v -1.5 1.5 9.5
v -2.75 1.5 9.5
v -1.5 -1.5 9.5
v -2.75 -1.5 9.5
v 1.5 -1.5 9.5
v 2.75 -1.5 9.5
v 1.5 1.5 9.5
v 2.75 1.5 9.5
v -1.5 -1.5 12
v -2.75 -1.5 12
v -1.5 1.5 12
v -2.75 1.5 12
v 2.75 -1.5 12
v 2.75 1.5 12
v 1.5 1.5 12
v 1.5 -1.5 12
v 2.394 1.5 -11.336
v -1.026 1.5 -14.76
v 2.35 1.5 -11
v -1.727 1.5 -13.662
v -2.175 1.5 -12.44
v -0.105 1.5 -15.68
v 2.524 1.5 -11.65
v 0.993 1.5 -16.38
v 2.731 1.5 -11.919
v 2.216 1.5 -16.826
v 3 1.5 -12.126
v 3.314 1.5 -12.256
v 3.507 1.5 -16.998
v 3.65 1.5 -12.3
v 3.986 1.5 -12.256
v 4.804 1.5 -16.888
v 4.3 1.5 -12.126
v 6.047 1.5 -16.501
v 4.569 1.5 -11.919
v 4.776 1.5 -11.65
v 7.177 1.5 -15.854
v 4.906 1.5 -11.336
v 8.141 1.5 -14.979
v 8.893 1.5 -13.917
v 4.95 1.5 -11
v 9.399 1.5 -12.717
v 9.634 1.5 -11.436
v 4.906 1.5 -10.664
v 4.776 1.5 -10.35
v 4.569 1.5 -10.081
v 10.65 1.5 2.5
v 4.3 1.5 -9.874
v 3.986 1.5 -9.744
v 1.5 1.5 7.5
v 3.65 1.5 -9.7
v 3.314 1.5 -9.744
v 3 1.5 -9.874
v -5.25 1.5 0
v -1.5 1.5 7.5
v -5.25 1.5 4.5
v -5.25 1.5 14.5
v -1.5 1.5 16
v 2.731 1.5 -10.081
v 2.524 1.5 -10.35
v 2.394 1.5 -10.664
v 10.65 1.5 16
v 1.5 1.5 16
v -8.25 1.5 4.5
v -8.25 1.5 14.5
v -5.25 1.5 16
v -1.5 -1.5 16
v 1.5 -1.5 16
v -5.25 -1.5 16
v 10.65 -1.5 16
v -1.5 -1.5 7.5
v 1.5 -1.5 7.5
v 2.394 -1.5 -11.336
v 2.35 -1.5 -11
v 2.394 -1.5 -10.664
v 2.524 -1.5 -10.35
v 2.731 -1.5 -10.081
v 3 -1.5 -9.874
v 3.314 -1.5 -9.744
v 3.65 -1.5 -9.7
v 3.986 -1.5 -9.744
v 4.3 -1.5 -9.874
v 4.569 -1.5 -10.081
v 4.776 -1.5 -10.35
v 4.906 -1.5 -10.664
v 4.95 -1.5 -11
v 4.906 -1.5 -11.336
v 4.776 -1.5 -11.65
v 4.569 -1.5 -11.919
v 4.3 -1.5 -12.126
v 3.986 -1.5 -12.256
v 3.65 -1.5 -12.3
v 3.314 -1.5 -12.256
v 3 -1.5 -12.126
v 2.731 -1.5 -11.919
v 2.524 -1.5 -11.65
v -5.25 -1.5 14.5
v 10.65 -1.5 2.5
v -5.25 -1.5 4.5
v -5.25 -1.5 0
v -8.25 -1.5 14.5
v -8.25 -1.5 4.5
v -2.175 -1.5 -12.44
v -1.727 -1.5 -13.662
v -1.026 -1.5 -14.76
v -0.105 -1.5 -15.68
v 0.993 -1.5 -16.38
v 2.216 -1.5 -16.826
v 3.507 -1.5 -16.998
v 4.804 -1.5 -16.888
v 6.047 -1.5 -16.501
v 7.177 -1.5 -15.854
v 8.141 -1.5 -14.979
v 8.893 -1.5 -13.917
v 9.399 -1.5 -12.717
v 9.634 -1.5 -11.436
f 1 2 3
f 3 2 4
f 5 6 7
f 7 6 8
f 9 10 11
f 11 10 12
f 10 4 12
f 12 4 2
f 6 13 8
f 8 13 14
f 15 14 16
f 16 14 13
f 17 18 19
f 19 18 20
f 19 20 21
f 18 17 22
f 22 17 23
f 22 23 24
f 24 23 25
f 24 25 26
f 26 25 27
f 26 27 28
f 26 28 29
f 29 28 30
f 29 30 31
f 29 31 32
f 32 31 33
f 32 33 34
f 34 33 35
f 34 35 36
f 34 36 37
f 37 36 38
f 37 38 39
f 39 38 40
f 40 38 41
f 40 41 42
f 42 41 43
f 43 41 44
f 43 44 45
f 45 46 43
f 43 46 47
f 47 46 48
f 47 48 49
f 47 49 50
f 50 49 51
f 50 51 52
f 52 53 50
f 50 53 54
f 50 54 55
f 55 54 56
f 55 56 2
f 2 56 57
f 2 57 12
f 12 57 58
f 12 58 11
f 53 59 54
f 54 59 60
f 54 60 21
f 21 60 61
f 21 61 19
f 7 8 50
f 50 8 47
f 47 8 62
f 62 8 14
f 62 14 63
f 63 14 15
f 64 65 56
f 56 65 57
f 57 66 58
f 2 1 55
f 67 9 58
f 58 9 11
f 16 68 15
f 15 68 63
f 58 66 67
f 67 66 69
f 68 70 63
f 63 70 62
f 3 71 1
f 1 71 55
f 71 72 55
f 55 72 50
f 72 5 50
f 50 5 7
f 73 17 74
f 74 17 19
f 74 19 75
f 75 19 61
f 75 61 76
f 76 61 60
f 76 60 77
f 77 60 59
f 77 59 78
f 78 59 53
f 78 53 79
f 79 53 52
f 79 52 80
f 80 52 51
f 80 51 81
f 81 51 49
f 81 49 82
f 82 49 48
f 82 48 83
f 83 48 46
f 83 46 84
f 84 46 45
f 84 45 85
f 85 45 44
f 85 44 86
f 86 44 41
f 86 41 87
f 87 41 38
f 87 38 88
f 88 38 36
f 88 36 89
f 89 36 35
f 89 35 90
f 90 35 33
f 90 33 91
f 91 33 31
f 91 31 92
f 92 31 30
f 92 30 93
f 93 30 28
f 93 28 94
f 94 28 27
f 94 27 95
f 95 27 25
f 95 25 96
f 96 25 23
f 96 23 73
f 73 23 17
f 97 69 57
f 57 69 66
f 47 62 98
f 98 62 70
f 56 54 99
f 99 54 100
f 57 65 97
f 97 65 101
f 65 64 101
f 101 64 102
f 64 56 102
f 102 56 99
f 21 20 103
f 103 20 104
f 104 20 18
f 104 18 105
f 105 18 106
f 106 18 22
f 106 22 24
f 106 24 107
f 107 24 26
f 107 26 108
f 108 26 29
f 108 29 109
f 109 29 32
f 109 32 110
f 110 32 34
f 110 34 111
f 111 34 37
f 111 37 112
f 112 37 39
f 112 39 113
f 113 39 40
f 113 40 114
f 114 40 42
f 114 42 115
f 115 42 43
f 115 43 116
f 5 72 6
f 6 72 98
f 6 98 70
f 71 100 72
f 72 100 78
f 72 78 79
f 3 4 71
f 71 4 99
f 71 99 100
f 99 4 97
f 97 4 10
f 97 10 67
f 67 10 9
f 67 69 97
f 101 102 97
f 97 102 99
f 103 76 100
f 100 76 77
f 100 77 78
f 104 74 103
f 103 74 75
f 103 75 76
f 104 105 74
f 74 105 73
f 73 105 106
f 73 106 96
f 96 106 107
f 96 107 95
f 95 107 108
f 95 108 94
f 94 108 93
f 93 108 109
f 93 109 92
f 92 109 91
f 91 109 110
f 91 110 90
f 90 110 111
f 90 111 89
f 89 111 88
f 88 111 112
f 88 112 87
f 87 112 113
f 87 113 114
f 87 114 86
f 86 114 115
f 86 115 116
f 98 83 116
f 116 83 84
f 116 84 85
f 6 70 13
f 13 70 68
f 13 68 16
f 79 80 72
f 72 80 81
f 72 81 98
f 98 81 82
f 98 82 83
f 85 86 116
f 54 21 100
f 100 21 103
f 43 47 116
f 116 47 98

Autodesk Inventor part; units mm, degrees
ref_plane "YZ Plane" through (0, 0, 0) normal (1, 0, 0) x (0, 1, 0)
ref_plane "XZ Plane" through (0, 0, 0) normal (0, 1, 0) x (-1, 0, 0)
ref_plane "XY Plane" through (0, 0, 0) normal (0, 0, 1) x (1, 0, 0)
sketch "草圖1" plane through (0, 0, 0) normal (0, 1, 0) x (-1, 0, 0)
  line L0 (12.03, 0) -> (-14.43, 0) projected
  line L1 (5.25, 0) -> (-10.4678, 0)
  line L2 (-10.65, 2.5) -> (-10.65, 16)
  line L3 (-10.65, 16) -> (5.25, 16)
  line L4 (5.25, 16) -> (5.25, 0)
  line L5 (5.25, 14.5) -> (8.25, 14.5)
  line L6 (8.25, 14.5) -> (8.25, 4.5)
  line L7 (8.25, 4.5) -> (5.25, 4.5)
  line L8 (5.25, 4.5) -> (5.25, 14.5)
  line L9 (1.5, 16) -> (-1.5, 16)
  line L10 (-1.5, 16) -> (-1.5, 12)
  line L11 (-1.5, 12) -> (1.5, 12)
  line L12 (1.5, 12) -> (1.5, 16)
  line L13 (0, -23.6) -> (0, 22.6) projected
  line L14 (2.75, 12) -> (-2.75, 12)
  line L15 (-2.75, 12) -> (-2.75, 9.5)
  line L16 (-2.75, 9.5) -> (2.75, 9.5)
  line L17 (2.75, 9.5) -> (2.75, 12)
  line L18 (1.5, 9.5) -> (-1.5, 9.5)
  line L19 (-1.5, 9.5) -> (-1.5, 7.5)
  line L20 (-1.5, 7.5) -> (1.5, 7.5)
  line L21 (1.5, 7.5) -> (1.5, 9.5)
  line L22 (-10.65, 16) -> (-3.65, 16)
  line L23 (-3.65, 16) -> (-3.65, -11)
  circle A0 centre (-3.65, -11) radius 1.3
  circle A1 centre (-3.65, -11) radius 6
  line L24 (5.25, 0) -> (2.1747, -12.4399)
  line L25 (-10.65, 16) -> (-10.65, 2.5)
  line L26 (-10.65, 2.5) -> (-9.6341, -11.4362)
  dimension "d0" = 16
  dimension "d1" = 15.9
  dimension "d2" = 3
  dimension "d3" = 10
  dimension "d4" = 1.5
  dimension "d5" = 1.5
  dimension "d6" = 3
  dimension "d7" = 4
  dimension "d8" = 2.5
  dimension "d9" = 1.25
  dimension "d10" = 1.25
  dimension "d11" = 1.5
  dimension "d12" = 3
  dimension "d13" = 2
  dimension "d14" = 9.15
  dimension "d15" = 7
  dimension "d16" = 27
  dimension "d17" = 2.6
  dimension "d18" = 12
  dimension "d19" = 13.5
extrude "擠出1" add sketch "草圖1" along normal mid plane 3 contours L24 A1 L13 L0 | L0 L13 L20 L21 L16 L17 L14 L12 L3 L4 | L13 A1 L23 L0 | L0 L23 L3 L10 L14 L15 L16 L19 L20 L13 | L4 L5 L6 L7 | A1 L13 | L23 A1 L26 L0 | L0 L26 L2 L3 L23 | L13 A1
properties part number "板子8"
